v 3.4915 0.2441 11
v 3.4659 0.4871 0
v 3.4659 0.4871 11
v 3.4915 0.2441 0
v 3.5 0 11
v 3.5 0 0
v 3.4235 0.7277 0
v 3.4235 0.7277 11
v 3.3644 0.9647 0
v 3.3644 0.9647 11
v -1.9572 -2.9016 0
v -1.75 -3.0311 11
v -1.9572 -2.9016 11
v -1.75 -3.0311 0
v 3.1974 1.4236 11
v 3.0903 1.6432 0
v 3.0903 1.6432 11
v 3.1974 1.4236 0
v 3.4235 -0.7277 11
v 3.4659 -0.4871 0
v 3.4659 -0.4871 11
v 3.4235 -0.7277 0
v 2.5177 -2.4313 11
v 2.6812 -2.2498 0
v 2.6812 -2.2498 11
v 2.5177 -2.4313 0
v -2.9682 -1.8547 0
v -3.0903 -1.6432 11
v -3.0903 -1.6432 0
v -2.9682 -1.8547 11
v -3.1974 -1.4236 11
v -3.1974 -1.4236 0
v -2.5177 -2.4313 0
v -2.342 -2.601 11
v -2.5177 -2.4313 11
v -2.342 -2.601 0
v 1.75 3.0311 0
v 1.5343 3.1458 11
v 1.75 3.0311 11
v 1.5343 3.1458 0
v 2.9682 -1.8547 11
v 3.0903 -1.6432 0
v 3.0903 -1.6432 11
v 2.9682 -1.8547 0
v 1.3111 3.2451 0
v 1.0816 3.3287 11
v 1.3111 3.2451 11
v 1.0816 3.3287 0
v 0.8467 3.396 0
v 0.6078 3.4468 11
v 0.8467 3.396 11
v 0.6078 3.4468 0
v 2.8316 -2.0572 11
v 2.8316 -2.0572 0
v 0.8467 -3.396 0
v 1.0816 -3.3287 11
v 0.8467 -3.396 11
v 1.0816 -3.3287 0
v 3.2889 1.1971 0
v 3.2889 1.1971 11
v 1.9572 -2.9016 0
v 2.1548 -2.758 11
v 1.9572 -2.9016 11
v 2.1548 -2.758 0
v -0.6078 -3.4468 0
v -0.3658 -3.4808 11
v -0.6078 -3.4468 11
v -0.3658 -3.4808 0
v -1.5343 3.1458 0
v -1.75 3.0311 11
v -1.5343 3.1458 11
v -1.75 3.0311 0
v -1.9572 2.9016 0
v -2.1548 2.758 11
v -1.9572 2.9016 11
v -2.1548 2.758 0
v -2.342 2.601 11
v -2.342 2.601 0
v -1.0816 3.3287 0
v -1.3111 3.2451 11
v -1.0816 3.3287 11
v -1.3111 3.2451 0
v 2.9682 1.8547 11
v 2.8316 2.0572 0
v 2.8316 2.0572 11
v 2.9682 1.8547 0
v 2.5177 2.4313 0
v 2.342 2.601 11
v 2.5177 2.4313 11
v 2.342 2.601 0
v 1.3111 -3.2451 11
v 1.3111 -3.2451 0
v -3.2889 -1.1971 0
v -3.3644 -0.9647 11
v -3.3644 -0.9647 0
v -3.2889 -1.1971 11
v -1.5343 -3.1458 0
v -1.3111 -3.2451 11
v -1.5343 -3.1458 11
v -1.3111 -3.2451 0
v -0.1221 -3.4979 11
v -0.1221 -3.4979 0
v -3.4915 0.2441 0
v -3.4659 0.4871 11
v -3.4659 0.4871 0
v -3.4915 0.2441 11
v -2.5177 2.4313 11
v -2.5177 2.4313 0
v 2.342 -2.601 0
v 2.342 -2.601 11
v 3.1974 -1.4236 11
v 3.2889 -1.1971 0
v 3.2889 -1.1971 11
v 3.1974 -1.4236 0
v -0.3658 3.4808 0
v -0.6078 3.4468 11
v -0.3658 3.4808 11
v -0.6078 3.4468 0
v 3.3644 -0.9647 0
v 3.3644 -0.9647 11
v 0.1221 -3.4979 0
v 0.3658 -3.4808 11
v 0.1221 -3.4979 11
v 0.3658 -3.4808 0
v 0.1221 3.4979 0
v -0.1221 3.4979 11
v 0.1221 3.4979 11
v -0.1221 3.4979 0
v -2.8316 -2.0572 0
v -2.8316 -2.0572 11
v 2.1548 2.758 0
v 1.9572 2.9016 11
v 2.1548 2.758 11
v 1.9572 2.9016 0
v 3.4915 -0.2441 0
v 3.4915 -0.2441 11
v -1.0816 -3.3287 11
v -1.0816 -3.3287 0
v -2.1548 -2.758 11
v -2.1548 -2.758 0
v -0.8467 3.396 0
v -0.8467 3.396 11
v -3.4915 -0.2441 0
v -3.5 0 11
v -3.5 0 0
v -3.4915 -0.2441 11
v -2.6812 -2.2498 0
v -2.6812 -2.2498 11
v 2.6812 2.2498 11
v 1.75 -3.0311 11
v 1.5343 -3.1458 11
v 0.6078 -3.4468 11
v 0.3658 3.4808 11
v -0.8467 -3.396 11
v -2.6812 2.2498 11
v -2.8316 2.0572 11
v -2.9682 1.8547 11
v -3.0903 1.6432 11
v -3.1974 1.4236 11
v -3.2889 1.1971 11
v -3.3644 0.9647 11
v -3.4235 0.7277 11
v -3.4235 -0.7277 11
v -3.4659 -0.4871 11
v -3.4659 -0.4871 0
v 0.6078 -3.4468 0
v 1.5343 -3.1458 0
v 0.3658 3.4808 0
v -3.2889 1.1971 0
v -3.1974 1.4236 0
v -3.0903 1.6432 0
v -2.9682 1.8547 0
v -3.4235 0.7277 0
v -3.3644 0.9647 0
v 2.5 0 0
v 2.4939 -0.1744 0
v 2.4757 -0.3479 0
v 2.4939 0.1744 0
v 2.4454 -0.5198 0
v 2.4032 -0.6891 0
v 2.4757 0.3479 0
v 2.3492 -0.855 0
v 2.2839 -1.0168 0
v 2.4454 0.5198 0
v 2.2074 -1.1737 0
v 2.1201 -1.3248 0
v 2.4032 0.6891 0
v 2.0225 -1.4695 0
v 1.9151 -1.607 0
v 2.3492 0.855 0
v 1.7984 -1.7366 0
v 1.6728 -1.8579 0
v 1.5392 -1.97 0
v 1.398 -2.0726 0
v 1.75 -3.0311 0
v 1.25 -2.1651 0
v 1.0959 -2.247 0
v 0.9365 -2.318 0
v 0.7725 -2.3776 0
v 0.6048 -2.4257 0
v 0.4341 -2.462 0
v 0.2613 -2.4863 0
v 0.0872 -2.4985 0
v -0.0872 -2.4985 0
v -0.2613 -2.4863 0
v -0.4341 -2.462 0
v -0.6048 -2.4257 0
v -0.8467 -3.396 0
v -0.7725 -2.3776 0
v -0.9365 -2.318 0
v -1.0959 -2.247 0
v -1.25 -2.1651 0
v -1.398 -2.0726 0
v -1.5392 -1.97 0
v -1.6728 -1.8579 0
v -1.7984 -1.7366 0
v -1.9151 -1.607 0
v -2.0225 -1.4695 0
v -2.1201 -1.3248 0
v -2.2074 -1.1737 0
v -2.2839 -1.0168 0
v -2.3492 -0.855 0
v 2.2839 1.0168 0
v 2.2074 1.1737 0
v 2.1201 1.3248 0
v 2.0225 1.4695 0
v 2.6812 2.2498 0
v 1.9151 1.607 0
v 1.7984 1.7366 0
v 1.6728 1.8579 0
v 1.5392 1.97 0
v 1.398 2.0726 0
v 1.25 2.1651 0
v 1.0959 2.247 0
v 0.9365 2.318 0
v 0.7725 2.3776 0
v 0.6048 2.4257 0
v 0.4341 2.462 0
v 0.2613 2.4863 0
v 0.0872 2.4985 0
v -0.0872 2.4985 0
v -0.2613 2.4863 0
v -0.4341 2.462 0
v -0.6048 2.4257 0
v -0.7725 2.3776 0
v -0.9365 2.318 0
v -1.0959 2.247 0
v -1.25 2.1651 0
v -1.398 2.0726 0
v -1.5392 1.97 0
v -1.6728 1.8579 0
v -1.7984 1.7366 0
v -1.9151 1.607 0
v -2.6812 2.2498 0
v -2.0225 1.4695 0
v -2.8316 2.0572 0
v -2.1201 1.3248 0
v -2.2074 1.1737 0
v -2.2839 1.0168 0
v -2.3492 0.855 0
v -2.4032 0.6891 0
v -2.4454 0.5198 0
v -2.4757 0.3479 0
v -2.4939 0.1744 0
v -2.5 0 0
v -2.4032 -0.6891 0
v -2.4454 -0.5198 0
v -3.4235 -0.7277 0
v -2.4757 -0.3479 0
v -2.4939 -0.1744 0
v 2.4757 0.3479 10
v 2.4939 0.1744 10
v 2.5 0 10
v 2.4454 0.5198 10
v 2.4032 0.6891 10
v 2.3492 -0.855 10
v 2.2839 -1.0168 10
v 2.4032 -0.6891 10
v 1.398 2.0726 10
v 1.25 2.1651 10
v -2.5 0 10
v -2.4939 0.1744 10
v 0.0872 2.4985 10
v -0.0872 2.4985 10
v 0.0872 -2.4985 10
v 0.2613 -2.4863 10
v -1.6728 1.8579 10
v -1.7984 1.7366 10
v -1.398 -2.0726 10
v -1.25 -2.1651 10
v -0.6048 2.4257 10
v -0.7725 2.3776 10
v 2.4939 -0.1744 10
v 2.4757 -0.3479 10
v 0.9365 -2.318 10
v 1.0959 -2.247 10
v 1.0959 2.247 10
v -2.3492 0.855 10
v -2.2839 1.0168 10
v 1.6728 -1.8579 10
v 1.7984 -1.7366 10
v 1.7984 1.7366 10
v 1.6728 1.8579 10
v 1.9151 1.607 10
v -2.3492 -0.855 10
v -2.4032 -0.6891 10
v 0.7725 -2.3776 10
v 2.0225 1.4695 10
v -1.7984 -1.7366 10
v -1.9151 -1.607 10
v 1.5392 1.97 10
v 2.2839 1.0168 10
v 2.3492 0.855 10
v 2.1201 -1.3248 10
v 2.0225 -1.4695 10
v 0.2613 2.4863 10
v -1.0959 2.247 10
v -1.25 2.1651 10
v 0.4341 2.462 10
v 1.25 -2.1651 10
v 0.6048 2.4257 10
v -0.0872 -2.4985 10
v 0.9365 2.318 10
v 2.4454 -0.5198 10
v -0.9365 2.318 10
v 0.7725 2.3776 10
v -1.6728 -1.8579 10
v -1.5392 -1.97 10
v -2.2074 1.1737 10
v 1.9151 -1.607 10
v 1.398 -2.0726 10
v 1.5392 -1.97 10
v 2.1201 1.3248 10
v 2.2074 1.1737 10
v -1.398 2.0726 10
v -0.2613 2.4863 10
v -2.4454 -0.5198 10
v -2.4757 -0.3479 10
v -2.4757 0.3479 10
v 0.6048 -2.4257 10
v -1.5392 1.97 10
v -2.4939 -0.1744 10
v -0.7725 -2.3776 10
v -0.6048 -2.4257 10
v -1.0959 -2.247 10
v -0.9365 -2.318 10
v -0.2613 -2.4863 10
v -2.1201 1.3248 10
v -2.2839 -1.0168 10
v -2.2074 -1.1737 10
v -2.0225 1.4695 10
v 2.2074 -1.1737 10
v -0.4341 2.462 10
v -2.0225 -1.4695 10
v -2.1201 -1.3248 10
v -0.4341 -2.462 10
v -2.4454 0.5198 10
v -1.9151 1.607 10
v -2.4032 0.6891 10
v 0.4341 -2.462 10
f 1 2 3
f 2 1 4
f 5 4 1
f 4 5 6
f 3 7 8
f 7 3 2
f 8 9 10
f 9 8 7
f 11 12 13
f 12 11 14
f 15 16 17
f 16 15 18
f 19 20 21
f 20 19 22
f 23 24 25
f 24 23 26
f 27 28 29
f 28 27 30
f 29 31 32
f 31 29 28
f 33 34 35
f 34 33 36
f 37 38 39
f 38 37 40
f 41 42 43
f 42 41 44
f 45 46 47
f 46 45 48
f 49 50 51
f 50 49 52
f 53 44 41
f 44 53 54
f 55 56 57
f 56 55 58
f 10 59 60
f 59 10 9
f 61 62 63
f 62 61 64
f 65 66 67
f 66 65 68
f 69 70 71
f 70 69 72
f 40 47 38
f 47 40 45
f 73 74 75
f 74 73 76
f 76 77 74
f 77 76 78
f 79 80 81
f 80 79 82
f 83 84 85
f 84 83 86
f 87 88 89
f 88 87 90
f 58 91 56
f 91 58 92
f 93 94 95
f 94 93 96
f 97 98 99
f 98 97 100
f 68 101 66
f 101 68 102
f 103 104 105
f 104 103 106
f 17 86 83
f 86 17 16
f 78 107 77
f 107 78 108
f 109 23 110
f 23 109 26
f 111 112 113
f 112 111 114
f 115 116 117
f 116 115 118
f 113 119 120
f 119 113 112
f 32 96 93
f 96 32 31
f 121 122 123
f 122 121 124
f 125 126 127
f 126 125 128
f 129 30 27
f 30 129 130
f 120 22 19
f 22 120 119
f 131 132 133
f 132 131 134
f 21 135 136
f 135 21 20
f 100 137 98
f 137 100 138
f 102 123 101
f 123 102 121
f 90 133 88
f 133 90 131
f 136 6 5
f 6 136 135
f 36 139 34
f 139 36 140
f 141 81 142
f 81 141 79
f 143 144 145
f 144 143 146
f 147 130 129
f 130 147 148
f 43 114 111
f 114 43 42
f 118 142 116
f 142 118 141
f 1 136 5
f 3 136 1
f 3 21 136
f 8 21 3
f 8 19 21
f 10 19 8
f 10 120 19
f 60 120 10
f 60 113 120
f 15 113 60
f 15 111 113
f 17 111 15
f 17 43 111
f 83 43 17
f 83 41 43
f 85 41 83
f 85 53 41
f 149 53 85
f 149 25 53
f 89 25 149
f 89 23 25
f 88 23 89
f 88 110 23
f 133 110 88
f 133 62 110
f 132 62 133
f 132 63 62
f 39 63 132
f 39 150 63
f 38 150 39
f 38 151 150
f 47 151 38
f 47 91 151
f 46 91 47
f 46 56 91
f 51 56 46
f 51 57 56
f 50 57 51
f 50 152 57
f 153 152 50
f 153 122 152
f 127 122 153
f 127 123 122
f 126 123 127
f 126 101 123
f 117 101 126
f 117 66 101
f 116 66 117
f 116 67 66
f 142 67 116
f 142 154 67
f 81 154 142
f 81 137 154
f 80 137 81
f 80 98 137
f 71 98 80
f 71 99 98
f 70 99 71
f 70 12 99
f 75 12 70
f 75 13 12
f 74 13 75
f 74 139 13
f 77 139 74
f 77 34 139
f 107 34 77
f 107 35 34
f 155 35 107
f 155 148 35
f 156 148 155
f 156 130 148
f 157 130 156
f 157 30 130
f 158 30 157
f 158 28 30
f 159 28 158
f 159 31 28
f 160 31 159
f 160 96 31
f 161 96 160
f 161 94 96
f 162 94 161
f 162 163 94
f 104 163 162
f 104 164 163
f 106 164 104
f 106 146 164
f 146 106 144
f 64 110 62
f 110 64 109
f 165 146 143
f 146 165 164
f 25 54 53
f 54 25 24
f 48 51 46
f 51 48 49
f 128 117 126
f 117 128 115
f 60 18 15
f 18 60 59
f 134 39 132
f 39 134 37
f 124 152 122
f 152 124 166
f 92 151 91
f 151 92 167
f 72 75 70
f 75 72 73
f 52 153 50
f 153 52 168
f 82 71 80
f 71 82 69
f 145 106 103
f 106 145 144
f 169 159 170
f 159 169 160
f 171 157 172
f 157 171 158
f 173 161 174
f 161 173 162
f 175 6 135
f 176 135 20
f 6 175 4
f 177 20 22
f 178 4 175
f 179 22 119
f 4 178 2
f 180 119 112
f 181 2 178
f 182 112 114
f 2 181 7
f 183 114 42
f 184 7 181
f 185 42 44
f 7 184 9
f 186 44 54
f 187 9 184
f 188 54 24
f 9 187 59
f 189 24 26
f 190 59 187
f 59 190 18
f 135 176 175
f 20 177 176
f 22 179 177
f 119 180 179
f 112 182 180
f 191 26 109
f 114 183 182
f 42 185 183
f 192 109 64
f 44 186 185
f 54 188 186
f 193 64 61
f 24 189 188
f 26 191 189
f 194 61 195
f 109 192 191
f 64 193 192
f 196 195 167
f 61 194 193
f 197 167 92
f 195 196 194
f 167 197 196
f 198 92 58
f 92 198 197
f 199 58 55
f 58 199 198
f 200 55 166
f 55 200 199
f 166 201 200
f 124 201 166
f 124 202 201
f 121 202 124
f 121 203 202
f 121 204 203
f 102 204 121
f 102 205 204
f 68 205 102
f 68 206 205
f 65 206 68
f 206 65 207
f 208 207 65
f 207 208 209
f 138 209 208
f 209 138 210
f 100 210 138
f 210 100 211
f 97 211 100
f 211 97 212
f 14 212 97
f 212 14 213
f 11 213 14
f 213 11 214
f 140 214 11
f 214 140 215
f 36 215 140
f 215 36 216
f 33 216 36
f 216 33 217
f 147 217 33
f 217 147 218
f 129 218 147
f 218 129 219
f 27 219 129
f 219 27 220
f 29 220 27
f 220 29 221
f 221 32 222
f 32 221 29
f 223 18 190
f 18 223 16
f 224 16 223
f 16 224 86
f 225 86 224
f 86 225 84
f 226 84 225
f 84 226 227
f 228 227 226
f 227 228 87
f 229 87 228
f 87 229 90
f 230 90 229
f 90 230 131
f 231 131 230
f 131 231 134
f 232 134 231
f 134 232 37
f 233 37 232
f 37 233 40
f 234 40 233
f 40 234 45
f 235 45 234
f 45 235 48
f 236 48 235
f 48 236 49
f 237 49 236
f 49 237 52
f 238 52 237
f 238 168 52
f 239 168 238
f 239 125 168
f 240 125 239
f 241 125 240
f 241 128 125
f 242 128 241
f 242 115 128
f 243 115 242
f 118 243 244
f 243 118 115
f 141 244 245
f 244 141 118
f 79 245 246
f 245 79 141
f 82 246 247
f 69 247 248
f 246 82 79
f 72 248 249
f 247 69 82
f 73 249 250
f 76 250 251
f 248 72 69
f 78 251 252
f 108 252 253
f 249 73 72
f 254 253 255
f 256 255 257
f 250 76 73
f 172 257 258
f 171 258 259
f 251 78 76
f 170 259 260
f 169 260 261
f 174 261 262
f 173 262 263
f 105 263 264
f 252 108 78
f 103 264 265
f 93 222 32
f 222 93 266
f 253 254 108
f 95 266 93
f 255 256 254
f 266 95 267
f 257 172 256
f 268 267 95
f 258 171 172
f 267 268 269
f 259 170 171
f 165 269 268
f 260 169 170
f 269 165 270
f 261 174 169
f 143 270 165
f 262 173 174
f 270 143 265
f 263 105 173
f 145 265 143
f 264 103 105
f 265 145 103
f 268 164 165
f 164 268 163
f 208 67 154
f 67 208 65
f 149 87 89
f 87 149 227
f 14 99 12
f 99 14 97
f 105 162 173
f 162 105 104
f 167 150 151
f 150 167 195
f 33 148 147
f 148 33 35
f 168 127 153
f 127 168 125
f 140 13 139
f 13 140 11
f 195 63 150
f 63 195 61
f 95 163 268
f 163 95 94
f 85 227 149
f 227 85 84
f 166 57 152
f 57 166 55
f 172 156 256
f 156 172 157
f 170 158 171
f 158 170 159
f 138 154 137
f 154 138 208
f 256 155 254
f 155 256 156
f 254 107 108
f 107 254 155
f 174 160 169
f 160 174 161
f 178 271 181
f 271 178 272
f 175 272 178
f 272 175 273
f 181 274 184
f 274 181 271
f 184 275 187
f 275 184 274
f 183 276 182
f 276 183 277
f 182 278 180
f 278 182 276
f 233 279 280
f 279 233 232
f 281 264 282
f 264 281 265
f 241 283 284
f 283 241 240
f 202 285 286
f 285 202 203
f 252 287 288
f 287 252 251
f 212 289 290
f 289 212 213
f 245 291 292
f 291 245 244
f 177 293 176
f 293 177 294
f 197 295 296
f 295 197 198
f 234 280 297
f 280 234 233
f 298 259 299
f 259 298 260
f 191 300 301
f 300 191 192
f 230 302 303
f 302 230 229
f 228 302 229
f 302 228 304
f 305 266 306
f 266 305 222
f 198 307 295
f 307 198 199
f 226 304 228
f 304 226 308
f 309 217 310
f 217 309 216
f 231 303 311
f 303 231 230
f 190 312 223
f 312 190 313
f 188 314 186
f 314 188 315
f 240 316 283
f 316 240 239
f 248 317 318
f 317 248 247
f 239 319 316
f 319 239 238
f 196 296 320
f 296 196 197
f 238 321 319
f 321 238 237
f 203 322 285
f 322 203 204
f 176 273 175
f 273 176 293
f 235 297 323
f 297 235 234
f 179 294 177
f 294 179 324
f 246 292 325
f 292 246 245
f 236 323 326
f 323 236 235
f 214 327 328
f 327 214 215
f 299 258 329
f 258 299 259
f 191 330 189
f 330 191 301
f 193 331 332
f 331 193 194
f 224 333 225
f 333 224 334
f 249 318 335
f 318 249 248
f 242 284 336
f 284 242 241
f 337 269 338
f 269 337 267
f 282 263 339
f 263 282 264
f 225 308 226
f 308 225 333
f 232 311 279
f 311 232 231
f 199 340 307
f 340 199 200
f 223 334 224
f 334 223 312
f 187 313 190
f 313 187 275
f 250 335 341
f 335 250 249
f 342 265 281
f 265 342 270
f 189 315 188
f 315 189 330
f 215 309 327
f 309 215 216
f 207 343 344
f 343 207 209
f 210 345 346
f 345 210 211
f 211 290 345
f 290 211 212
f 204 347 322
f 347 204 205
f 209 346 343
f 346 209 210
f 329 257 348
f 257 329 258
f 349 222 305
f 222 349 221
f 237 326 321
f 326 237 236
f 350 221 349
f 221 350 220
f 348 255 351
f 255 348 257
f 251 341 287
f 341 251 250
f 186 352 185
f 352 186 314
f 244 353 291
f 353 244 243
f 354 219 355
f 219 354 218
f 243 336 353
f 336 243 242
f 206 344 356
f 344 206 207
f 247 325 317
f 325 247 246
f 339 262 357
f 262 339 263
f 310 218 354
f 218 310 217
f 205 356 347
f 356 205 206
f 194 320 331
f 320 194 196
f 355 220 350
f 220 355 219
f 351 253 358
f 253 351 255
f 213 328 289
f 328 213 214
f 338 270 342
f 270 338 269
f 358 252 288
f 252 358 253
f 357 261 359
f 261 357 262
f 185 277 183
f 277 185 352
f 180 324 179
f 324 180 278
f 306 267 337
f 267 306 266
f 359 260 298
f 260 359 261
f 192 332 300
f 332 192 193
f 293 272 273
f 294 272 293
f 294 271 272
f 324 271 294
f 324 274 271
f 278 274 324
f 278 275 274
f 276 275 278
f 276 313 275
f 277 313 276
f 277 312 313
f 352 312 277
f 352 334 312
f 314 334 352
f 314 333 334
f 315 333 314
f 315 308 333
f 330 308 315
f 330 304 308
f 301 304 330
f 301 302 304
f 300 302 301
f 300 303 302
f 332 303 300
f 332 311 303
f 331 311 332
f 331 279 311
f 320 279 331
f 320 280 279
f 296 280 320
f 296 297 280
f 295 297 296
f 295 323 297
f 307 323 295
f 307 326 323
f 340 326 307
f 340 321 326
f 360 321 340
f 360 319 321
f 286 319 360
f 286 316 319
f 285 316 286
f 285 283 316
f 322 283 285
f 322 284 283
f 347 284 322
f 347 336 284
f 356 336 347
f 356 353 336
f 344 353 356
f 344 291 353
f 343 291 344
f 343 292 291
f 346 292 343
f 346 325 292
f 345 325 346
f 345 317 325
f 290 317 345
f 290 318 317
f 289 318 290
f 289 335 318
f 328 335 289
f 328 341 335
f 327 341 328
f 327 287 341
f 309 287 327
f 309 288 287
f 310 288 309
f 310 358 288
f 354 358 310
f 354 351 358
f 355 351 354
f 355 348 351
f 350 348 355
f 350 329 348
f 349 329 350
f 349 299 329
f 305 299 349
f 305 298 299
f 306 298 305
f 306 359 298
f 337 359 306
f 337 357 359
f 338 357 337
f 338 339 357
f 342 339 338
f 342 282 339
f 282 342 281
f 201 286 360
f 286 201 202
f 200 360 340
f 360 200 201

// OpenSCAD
$fn = 90;

difference(){
	cylinder(d=7, h=11);
	cylinder(d=5, h=10);
}
